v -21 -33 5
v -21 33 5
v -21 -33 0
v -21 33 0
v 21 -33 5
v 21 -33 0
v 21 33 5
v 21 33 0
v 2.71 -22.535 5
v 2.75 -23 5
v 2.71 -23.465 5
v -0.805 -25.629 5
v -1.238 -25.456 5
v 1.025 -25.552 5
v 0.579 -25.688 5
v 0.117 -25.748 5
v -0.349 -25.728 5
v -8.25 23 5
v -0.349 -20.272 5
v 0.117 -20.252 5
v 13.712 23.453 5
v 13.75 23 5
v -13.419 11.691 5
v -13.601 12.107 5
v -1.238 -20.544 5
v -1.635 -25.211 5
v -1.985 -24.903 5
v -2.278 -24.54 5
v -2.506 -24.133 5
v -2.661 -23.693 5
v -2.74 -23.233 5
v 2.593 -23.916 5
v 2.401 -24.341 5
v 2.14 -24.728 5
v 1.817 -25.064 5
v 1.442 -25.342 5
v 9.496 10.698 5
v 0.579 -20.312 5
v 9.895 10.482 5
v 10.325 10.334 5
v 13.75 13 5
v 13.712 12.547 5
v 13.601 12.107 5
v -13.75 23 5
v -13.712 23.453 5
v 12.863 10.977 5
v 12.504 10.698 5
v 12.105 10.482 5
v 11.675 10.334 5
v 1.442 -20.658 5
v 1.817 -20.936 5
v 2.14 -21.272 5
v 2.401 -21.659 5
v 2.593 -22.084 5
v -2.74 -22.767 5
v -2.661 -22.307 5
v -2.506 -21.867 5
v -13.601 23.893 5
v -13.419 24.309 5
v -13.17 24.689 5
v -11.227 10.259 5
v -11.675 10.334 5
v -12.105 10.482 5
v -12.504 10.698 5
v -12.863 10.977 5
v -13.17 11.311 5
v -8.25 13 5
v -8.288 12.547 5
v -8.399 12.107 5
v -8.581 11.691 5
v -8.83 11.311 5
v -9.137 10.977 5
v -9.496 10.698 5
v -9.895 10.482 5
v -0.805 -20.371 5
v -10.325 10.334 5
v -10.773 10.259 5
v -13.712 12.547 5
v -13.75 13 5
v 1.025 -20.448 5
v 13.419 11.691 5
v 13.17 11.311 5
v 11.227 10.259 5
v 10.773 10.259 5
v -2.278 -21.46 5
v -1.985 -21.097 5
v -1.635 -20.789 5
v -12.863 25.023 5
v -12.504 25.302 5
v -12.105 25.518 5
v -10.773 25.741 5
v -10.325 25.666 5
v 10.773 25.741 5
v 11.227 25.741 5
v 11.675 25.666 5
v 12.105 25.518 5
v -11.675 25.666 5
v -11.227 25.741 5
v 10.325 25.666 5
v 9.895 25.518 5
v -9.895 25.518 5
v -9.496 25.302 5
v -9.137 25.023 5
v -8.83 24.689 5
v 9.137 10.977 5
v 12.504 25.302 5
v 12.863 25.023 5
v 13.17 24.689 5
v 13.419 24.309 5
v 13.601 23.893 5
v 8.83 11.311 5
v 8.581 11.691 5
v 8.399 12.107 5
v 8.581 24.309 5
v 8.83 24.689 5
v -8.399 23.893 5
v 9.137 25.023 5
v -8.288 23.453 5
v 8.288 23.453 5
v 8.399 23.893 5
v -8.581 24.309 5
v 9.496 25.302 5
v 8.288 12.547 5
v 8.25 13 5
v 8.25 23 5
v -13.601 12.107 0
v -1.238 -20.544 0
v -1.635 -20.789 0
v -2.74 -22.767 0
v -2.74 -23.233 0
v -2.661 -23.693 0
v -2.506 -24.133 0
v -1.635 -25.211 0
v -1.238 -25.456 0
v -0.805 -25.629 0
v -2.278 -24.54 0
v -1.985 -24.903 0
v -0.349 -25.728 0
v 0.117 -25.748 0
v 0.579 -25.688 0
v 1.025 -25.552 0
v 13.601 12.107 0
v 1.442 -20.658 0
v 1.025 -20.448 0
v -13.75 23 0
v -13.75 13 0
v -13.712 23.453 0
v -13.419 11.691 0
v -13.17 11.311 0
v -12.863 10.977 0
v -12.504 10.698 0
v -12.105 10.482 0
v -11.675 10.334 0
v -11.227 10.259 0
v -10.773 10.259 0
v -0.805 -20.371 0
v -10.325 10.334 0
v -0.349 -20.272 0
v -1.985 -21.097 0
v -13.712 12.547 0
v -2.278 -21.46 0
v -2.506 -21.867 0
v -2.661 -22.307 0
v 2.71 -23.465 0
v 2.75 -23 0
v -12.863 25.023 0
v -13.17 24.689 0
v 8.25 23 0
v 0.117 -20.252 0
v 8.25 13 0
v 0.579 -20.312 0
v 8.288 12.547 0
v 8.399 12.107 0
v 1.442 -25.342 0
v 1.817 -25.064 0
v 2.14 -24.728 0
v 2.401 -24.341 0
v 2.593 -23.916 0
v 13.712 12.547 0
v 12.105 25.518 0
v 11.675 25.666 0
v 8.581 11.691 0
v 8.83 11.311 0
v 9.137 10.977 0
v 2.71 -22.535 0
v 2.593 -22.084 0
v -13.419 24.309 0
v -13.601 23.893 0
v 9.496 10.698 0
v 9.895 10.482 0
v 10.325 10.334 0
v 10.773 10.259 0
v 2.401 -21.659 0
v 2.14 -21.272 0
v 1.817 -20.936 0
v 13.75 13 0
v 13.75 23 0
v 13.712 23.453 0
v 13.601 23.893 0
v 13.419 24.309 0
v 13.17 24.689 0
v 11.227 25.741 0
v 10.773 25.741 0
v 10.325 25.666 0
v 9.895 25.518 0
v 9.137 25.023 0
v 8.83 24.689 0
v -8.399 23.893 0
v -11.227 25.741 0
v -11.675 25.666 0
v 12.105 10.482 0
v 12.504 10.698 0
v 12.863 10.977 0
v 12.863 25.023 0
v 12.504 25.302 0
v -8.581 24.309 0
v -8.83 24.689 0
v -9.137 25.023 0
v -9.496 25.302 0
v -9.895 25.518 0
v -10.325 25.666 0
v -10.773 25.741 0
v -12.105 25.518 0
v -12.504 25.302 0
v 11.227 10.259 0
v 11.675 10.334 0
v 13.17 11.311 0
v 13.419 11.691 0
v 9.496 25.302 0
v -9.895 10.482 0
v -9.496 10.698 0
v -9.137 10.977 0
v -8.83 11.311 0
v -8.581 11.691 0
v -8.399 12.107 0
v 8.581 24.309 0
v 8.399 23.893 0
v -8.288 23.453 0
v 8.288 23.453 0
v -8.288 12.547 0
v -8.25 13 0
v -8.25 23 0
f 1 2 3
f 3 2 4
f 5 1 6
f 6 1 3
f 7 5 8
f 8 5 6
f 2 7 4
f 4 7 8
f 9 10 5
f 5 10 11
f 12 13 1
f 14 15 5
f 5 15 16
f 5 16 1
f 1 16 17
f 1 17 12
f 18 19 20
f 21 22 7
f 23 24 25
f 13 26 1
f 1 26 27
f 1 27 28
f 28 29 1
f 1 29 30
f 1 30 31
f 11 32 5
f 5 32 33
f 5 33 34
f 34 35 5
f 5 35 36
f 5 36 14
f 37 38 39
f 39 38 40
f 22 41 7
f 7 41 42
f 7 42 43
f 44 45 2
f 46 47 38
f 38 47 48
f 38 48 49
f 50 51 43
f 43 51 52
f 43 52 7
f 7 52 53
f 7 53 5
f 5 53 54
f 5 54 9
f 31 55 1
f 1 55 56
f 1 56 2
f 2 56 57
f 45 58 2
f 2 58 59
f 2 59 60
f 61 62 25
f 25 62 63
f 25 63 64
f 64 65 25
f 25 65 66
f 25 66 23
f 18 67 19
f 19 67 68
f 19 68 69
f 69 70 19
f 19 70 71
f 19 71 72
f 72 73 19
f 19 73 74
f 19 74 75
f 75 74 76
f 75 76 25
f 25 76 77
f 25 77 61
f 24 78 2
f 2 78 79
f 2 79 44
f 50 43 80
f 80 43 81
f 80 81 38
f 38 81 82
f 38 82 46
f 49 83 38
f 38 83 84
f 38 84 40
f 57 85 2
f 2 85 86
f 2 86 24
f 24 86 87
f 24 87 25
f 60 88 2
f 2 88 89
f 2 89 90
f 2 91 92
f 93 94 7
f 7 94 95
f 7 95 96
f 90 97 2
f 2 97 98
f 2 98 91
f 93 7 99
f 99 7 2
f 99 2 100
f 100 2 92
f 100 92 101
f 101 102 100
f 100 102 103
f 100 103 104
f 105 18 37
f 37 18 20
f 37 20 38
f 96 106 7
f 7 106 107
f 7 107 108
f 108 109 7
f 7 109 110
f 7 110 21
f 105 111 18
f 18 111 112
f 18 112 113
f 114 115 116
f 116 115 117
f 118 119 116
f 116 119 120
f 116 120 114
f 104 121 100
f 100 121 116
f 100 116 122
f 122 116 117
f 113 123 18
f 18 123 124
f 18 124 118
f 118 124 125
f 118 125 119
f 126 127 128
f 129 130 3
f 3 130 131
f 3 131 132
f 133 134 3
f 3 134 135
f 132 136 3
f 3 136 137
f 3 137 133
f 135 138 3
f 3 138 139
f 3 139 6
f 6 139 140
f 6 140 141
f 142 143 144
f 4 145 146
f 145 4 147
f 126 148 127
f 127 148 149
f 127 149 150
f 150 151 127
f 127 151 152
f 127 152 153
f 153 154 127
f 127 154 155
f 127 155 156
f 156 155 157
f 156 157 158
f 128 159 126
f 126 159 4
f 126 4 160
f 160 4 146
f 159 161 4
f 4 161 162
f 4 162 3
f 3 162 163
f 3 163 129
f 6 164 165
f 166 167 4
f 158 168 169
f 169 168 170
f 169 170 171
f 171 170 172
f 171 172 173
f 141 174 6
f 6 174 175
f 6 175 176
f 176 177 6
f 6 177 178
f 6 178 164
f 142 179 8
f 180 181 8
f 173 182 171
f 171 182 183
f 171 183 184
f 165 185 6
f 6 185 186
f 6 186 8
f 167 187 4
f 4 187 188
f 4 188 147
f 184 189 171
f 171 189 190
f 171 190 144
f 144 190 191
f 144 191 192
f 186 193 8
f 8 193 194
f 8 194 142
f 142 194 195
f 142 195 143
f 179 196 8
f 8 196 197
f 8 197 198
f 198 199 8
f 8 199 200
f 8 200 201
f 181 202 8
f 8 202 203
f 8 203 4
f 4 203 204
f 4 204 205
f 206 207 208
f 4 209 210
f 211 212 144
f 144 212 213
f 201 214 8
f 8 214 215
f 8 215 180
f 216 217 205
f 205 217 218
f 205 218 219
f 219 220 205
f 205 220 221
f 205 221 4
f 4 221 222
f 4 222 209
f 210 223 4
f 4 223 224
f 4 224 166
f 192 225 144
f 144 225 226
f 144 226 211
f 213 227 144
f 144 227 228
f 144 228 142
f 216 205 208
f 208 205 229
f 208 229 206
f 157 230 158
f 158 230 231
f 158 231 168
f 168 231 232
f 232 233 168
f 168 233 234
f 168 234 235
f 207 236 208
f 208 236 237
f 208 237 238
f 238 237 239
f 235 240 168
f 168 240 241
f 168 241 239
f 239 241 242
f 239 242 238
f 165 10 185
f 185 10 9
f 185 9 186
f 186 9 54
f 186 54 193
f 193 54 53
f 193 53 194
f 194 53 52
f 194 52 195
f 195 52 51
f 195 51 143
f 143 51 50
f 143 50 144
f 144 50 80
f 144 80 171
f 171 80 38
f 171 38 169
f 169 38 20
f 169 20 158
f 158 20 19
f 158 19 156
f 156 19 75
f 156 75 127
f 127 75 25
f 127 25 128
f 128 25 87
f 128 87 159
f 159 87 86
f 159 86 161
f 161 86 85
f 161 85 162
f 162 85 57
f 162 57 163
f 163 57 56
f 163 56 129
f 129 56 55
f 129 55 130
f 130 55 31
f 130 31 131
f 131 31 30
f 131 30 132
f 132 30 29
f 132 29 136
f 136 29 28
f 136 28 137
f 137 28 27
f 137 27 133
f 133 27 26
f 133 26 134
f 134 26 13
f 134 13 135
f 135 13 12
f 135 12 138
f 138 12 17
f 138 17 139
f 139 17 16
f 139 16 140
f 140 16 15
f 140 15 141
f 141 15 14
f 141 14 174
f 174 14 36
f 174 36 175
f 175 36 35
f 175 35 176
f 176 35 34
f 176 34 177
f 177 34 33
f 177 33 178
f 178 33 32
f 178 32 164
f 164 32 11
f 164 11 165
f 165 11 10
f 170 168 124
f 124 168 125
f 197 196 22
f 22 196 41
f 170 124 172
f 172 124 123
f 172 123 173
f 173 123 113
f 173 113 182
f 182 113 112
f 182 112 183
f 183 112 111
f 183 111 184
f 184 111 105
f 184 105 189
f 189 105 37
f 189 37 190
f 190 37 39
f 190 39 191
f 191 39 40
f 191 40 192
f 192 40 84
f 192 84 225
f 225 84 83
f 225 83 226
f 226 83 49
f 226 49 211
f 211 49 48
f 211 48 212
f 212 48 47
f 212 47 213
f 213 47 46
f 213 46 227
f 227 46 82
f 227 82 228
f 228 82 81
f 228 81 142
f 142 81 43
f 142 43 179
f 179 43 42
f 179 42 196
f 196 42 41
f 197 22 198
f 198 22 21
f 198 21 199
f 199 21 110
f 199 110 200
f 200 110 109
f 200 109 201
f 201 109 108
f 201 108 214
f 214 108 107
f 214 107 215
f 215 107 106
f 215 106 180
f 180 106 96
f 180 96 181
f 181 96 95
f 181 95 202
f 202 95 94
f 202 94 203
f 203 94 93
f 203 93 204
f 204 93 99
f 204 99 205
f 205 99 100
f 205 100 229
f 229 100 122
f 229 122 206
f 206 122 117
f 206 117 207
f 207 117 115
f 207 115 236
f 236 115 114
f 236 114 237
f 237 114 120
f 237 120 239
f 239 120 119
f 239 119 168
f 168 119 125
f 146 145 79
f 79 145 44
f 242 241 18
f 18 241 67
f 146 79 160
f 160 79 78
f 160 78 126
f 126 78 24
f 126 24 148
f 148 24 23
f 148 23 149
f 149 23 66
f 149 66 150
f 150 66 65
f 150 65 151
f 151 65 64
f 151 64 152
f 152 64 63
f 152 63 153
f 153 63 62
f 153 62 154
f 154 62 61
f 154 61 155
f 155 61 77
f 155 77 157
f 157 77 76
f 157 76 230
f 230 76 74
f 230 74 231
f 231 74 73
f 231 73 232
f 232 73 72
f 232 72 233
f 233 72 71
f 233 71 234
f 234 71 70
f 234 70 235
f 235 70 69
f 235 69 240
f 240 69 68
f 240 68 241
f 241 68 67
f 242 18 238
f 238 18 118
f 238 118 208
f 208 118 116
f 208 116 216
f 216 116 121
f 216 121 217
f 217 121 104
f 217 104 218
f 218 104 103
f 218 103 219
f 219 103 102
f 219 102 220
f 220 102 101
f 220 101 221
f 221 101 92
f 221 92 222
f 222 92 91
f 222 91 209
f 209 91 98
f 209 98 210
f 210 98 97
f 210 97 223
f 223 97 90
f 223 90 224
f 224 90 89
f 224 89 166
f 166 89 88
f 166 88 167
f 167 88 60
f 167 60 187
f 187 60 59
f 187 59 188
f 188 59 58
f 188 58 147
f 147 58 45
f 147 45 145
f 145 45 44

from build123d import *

# Parameters (mm, degrees)
SKETCH1_W           = 42
SKETCH1_H           = 66
BOSS_EXTRUDE1_DEPTH = 5
D_GAGEMENT_M51_D    = 5.5
CUT_EXTRUDE1_DEPTH  = 40.433488306


with BuildPart() as part:
    # Sketch1 → Boss-Extrude1 (new body)
    with BuildSketch(Plane.XY):
        Rectangle(SKETCH1_W, SKETCH1_H)
    extrude(amount=BOSS_EXTRUDE1_DEPTH)

    # Dégagement M51 (through all)
    with Locations(Plane.XY.offset(5)):
        with Locations((11, 18), (-11, 18), (0, -23)):
            Hole(D_GAGEMENT_M51_D / 2)

    # Sketch5 → Cut-Extrude1 (cut, through all)
    with BuildSketch(Plane.XY.offset(5)):
        with BuildLine():
            Line((-13.75, 13), (-13.75, 23))
            ThreePointArc((-13.75, 23), (-11, 25.75), (-8.25, 23))
            Line((-8.25, 23), (-8.25, 13))
            ThreePointArc((-8.25, 13), (-11, 10.25), (-13.75, 13))
        make_face()
        with BuildLine():
            Line((8.25, 13), (8.25, 23))
            ThreePointArc((8.25, 23), (11, 25.75), (13.75, 23))
            Line((13.75, 23), (13.75, 13))
            ThreePointArc((13.75, 13), (11, 10.25), (8.25, 13))
        make_face()
    extrude(amount=-CUT_EXTRUDE1_DEPTH, mode=Mode.SUBTRACT)


solid = part.part
